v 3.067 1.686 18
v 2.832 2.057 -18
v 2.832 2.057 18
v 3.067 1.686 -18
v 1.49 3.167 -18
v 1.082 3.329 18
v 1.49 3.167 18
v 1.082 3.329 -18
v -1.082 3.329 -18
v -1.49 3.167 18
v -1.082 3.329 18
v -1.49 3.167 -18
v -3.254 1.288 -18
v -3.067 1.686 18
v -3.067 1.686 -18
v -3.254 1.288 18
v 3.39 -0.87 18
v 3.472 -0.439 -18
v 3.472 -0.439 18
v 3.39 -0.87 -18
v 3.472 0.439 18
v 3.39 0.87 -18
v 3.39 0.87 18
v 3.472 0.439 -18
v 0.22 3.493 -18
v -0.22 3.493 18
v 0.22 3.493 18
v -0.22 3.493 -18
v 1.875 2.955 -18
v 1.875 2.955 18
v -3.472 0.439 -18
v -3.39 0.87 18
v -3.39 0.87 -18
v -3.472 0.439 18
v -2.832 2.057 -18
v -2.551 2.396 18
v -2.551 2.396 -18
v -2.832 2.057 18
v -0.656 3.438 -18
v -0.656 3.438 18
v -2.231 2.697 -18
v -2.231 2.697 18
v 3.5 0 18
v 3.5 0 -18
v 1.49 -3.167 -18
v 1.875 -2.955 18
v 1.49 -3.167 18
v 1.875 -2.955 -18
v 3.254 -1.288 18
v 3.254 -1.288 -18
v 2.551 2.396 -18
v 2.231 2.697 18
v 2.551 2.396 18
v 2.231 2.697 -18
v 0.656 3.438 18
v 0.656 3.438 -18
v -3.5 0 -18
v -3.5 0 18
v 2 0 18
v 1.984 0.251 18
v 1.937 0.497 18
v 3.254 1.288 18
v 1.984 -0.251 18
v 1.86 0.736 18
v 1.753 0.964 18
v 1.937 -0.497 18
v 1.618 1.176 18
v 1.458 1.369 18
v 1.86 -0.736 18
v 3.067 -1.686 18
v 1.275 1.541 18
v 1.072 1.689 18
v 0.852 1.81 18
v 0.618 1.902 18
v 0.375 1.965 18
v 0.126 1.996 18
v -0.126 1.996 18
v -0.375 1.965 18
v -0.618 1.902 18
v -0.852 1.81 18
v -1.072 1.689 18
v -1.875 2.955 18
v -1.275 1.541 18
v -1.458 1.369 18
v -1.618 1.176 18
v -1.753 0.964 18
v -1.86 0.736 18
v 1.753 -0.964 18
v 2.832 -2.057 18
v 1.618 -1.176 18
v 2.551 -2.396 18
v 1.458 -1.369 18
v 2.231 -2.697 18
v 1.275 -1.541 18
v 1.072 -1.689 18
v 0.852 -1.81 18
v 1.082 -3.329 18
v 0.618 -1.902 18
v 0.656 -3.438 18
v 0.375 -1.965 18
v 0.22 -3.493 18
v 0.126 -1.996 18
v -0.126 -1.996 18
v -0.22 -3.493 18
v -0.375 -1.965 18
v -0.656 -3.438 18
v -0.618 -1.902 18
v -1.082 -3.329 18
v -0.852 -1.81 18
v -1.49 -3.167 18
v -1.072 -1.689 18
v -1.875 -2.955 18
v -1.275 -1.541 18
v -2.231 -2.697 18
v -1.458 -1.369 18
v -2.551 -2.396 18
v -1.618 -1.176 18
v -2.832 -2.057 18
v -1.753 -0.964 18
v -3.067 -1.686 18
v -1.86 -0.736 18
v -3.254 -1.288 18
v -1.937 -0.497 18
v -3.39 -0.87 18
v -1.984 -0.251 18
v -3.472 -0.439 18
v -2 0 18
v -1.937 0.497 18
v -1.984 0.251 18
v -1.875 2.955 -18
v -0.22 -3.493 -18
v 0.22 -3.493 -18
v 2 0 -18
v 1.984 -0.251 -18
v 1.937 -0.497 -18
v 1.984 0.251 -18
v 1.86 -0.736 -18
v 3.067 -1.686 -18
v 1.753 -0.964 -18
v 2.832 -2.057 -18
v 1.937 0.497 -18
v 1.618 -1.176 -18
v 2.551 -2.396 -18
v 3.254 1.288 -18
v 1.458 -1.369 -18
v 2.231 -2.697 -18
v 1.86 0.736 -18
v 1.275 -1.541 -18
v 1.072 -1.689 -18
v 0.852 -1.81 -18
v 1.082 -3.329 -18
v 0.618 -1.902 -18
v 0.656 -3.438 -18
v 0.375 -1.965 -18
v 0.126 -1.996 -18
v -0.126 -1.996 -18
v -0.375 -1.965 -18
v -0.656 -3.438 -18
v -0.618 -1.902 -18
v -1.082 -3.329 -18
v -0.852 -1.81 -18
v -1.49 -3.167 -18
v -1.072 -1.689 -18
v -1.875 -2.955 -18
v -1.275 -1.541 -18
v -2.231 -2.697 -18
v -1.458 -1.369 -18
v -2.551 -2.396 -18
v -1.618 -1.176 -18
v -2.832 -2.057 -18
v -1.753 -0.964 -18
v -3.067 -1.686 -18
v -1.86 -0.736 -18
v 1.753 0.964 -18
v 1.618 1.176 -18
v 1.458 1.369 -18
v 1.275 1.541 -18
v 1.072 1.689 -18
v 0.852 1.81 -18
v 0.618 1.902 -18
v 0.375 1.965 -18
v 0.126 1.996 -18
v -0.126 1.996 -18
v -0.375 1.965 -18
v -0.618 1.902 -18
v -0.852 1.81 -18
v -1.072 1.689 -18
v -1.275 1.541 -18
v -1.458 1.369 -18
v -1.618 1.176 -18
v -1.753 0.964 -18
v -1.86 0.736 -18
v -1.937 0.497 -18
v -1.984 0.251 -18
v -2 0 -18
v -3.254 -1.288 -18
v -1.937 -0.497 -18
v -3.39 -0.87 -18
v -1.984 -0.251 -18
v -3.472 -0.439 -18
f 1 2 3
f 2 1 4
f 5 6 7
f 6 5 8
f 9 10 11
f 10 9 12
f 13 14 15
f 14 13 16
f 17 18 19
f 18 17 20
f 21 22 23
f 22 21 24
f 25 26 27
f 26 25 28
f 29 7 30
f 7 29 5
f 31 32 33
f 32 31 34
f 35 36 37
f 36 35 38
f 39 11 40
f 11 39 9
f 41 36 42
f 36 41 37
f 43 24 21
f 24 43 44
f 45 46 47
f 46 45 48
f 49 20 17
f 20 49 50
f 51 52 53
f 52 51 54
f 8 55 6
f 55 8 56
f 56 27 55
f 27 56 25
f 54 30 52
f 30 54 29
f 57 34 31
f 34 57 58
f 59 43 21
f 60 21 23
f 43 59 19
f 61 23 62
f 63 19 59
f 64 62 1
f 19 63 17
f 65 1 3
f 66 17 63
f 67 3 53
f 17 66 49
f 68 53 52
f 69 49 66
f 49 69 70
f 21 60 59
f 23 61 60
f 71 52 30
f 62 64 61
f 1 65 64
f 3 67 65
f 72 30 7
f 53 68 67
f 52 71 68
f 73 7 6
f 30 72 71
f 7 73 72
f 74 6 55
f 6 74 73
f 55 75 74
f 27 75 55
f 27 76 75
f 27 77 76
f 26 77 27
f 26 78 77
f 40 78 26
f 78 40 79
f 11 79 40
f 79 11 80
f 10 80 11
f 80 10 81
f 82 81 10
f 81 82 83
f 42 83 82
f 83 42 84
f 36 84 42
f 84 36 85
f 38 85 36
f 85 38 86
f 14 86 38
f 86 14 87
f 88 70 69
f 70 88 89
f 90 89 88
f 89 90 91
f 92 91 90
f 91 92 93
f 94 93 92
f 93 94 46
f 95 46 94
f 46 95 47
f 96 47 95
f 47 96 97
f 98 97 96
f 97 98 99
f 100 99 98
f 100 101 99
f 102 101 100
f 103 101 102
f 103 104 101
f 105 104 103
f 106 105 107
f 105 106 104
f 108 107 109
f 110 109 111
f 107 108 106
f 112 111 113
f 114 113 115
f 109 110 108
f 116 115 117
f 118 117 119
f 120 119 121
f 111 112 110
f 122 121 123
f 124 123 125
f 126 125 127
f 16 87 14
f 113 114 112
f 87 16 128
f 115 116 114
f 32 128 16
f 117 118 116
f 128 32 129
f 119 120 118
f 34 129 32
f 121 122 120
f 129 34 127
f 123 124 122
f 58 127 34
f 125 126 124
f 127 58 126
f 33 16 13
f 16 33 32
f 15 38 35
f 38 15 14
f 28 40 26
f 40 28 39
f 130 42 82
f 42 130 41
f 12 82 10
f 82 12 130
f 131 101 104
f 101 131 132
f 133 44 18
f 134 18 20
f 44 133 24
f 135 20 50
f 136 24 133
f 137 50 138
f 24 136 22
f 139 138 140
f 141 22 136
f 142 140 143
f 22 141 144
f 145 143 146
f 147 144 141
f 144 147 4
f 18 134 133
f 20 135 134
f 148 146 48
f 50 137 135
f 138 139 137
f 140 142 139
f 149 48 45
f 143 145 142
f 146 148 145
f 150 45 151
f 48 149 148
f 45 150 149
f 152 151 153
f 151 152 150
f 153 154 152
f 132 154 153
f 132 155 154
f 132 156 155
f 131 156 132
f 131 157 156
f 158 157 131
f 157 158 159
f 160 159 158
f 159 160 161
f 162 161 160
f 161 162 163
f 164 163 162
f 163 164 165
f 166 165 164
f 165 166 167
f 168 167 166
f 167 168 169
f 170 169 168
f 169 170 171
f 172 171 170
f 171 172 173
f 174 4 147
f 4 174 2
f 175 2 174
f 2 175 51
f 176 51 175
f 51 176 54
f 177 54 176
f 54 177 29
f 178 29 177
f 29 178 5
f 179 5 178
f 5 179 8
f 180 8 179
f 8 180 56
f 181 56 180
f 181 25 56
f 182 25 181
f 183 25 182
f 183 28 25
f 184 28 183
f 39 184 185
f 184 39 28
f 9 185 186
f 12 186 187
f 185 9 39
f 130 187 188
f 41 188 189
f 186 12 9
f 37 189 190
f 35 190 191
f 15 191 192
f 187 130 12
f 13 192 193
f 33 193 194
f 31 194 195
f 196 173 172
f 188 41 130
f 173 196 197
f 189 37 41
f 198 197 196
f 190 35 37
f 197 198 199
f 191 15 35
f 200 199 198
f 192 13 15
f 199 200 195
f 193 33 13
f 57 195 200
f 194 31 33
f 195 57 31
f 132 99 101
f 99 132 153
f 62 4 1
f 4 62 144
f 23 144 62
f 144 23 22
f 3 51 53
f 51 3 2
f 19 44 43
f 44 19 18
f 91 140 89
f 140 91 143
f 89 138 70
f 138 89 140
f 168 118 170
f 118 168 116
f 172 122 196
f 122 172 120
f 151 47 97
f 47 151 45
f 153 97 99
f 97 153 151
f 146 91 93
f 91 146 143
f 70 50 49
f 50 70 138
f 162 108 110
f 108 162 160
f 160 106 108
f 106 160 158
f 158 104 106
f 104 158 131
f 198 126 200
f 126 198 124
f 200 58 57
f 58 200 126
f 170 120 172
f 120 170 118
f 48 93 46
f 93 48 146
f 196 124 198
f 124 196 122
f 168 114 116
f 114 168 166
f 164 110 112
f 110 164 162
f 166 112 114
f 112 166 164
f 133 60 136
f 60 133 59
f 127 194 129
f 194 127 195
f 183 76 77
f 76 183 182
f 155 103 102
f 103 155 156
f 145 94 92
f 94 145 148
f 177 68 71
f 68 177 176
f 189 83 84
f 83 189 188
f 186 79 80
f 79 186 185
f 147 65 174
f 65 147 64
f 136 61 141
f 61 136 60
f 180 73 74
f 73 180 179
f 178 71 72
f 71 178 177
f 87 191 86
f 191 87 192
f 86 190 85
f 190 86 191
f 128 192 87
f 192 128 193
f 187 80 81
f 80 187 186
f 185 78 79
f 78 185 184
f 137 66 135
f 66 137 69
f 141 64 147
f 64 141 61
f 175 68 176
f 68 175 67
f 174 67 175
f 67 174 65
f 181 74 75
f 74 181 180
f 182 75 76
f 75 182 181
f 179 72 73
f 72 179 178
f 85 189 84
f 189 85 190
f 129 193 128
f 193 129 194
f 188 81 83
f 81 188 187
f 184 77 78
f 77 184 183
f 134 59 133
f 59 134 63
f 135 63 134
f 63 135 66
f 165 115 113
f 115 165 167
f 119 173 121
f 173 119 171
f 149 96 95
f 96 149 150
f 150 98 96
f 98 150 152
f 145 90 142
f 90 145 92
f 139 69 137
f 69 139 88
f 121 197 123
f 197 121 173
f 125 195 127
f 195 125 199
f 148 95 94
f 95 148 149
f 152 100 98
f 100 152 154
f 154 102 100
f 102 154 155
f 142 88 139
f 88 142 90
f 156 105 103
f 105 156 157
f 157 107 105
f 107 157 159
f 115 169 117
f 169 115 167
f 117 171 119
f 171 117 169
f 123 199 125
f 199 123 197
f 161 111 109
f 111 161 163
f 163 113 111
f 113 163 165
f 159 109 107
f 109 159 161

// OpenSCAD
$fn = 50;


difference() {
	union() {
		translate(v = [0, 0, -18.0000000000]) {
			cylinder(h = 36, r = 3.5000000000);
		}
	}
	union() {
		translate(v = [0, 0, -100.0000000000]) {
			cylinder(h = 200, r = 2);
		}
	}
}
